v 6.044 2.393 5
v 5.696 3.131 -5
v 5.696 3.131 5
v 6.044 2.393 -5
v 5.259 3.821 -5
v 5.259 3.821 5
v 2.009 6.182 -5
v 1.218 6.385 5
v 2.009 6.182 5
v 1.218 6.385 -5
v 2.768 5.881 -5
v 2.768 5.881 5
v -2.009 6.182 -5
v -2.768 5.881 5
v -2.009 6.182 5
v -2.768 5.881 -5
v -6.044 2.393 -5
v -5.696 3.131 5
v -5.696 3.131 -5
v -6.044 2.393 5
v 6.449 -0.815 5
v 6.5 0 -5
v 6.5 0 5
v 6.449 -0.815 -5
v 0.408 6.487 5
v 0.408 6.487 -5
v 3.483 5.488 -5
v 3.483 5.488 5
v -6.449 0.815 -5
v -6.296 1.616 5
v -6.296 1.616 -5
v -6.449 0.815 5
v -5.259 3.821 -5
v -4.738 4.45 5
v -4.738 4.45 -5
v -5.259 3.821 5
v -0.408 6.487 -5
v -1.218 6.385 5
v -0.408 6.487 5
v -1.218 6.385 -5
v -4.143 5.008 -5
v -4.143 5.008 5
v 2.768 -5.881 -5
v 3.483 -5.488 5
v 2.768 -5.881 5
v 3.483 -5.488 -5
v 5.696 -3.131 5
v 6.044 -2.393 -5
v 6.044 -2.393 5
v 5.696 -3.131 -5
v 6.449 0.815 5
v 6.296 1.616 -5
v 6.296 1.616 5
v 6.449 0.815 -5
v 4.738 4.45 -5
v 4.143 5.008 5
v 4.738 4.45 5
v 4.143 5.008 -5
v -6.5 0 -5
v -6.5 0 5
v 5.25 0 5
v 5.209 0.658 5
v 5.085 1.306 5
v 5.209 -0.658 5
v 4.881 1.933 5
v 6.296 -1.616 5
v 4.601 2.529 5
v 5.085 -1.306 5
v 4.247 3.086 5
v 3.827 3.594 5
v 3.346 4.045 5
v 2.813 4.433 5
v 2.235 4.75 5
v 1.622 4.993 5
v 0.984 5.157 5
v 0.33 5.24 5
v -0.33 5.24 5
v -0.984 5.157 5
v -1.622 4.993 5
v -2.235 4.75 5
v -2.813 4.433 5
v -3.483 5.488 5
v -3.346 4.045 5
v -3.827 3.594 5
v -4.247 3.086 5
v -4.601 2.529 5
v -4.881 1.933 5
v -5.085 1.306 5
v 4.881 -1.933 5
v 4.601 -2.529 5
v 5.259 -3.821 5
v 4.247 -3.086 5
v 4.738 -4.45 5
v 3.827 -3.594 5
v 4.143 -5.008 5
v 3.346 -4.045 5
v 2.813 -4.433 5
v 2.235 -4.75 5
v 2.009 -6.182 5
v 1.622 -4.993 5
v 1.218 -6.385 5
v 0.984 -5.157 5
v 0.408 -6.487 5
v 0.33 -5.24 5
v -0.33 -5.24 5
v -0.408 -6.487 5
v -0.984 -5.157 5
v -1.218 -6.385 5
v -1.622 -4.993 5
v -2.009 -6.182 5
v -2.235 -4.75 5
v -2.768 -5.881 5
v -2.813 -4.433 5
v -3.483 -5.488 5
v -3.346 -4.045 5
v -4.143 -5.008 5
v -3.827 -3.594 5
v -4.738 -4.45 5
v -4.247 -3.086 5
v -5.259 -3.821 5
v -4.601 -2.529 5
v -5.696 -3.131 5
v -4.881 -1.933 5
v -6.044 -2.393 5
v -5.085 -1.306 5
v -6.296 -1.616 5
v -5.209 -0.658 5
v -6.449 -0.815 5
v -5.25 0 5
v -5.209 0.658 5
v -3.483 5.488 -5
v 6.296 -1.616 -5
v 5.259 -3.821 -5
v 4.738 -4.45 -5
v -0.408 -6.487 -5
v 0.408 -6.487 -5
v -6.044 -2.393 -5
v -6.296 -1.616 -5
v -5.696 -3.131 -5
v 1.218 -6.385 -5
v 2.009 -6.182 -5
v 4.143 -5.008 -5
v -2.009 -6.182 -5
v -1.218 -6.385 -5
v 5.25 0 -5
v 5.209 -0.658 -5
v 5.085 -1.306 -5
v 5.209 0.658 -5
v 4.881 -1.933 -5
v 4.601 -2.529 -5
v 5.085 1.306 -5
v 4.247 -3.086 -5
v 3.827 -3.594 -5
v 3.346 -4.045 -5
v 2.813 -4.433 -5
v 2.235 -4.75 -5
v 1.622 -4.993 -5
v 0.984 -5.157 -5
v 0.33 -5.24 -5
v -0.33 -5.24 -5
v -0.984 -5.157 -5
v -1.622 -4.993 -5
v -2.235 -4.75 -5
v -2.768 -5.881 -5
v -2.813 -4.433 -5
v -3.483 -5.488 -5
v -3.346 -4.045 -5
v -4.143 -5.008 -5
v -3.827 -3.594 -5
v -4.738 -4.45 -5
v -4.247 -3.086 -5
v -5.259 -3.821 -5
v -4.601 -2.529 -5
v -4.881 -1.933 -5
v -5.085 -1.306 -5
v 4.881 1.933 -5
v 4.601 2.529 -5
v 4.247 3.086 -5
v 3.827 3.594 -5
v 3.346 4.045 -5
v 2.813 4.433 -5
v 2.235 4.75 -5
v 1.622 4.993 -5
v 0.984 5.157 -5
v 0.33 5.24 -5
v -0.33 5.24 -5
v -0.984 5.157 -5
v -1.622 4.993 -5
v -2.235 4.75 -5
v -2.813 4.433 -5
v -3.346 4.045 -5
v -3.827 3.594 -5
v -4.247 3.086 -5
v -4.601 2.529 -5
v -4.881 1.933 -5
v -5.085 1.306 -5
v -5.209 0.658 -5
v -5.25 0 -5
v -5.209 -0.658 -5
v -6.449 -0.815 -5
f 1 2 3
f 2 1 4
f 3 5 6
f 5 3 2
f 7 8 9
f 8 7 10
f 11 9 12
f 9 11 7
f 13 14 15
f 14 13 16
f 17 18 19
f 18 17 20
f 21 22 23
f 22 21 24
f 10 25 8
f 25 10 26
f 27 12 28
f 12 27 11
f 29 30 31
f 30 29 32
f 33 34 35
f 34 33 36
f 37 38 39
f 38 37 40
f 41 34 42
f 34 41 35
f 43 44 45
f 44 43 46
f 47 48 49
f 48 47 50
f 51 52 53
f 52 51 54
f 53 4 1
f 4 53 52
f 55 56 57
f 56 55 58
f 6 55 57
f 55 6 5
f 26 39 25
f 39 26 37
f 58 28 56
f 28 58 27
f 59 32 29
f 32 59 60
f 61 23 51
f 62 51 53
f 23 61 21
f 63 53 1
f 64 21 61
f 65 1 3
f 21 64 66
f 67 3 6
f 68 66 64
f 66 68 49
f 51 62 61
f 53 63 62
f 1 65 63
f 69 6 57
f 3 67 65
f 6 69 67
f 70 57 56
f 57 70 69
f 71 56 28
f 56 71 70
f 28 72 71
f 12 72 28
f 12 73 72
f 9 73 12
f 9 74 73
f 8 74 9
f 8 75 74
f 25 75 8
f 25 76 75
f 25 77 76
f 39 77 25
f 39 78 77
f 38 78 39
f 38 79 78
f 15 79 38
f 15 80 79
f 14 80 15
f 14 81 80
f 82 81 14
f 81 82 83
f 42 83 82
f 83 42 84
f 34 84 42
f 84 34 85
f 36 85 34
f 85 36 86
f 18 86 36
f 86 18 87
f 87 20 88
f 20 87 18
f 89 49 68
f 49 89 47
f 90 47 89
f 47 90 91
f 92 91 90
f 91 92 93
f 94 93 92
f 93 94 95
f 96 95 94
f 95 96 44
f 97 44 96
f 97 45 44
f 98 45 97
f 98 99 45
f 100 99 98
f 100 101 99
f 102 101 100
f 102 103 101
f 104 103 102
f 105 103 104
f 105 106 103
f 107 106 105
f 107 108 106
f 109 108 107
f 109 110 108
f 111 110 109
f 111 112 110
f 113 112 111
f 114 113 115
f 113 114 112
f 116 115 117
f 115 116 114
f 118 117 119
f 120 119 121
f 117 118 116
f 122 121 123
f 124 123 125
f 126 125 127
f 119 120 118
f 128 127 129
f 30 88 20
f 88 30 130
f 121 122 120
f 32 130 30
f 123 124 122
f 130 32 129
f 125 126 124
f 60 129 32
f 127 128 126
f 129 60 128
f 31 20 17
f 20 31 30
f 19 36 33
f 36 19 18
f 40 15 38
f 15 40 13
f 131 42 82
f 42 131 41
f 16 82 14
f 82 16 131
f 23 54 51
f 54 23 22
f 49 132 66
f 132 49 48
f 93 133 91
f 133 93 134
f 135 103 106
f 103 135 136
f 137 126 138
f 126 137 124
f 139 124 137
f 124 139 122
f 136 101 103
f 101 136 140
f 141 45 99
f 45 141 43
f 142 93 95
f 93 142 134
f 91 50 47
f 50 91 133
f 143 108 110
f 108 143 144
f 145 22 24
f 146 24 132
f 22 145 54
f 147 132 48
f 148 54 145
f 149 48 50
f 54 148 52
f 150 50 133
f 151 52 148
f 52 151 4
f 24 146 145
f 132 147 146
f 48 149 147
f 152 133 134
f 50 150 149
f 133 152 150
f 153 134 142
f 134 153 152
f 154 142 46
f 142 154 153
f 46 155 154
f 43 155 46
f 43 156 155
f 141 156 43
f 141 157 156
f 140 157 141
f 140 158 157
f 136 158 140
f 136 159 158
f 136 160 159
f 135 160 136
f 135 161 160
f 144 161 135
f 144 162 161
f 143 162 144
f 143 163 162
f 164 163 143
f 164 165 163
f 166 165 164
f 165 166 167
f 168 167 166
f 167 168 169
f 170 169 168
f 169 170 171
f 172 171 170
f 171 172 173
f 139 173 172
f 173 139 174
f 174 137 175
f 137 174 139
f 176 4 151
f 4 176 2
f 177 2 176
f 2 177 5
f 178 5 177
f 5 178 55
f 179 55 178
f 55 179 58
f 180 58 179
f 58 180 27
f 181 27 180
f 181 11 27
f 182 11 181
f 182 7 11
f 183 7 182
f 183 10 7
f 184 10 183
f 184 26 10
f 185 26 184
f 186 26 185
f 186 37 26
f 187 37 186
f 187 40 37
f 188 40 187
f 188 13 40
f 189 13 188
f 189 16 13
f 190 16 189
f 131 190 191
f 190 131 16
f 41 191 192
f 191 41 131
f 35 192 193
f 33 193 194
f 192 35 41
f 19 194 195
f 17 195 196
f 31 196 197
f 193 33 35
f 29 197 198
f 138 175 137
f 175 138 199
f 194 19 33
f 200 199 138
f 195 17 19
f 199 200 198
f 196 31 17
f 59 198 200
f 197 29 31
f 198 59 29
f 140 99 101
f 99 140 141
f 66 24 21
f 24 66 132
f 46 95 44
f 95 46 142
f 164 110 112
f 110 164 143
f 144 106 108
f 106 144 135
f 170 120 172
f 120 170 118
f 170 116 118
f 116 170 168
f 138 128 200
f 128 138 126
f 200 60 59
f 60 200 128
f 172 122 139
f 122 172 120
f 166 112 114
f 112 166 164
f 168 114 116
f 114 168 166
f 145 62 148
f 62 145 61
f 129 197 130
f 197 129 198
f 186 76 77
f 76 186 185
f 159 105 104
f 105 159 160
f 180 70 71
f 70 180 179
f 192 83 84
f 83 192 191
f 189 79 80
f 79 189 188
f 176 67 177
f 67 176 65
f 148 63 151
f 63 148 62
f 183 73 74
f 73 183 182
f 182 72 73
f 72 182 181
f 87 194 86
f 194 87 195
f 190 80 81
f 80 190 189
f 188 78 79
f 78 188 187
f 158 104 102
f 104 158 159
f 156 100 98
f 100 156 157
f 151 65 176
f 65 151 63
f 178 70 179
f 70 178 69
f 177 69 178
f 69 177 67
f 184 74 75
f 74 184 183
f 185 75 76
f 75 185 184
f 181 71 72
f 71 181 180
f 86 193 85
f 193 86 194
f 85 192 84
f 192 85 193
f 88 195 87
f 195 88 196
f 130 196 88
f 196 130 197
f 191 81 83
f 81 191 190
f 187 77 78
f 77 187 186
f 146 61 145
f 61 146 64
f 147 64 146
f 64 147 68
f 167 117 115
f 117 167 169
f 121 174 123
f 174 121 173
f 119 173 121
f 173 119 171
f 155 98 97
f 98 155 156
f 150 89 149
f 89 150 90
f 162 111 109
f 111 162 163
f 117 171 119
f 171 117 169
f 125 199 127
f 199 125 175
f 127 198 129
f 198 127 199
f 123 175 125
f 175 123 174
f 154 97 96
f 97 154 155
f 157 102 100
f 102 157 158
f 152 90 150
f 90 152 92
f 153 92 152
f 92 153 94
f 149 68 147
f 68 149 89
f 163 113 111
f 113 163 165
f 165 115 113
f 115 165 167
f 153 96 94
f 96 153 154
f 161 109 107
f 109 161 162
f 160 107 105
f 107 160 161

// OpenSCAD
$fn = 50;


difference() {
	union() {
		translate(v = [0, 0, -5.0000000000]) {
			cylinder(h = 10, r = 6.5000000000);
		}
	}
	union() {
		translate(v = [0, 0, -100.0000000000]) {
			cylinder(h = 200, r = 5.2500000000);
		}
	}
}
